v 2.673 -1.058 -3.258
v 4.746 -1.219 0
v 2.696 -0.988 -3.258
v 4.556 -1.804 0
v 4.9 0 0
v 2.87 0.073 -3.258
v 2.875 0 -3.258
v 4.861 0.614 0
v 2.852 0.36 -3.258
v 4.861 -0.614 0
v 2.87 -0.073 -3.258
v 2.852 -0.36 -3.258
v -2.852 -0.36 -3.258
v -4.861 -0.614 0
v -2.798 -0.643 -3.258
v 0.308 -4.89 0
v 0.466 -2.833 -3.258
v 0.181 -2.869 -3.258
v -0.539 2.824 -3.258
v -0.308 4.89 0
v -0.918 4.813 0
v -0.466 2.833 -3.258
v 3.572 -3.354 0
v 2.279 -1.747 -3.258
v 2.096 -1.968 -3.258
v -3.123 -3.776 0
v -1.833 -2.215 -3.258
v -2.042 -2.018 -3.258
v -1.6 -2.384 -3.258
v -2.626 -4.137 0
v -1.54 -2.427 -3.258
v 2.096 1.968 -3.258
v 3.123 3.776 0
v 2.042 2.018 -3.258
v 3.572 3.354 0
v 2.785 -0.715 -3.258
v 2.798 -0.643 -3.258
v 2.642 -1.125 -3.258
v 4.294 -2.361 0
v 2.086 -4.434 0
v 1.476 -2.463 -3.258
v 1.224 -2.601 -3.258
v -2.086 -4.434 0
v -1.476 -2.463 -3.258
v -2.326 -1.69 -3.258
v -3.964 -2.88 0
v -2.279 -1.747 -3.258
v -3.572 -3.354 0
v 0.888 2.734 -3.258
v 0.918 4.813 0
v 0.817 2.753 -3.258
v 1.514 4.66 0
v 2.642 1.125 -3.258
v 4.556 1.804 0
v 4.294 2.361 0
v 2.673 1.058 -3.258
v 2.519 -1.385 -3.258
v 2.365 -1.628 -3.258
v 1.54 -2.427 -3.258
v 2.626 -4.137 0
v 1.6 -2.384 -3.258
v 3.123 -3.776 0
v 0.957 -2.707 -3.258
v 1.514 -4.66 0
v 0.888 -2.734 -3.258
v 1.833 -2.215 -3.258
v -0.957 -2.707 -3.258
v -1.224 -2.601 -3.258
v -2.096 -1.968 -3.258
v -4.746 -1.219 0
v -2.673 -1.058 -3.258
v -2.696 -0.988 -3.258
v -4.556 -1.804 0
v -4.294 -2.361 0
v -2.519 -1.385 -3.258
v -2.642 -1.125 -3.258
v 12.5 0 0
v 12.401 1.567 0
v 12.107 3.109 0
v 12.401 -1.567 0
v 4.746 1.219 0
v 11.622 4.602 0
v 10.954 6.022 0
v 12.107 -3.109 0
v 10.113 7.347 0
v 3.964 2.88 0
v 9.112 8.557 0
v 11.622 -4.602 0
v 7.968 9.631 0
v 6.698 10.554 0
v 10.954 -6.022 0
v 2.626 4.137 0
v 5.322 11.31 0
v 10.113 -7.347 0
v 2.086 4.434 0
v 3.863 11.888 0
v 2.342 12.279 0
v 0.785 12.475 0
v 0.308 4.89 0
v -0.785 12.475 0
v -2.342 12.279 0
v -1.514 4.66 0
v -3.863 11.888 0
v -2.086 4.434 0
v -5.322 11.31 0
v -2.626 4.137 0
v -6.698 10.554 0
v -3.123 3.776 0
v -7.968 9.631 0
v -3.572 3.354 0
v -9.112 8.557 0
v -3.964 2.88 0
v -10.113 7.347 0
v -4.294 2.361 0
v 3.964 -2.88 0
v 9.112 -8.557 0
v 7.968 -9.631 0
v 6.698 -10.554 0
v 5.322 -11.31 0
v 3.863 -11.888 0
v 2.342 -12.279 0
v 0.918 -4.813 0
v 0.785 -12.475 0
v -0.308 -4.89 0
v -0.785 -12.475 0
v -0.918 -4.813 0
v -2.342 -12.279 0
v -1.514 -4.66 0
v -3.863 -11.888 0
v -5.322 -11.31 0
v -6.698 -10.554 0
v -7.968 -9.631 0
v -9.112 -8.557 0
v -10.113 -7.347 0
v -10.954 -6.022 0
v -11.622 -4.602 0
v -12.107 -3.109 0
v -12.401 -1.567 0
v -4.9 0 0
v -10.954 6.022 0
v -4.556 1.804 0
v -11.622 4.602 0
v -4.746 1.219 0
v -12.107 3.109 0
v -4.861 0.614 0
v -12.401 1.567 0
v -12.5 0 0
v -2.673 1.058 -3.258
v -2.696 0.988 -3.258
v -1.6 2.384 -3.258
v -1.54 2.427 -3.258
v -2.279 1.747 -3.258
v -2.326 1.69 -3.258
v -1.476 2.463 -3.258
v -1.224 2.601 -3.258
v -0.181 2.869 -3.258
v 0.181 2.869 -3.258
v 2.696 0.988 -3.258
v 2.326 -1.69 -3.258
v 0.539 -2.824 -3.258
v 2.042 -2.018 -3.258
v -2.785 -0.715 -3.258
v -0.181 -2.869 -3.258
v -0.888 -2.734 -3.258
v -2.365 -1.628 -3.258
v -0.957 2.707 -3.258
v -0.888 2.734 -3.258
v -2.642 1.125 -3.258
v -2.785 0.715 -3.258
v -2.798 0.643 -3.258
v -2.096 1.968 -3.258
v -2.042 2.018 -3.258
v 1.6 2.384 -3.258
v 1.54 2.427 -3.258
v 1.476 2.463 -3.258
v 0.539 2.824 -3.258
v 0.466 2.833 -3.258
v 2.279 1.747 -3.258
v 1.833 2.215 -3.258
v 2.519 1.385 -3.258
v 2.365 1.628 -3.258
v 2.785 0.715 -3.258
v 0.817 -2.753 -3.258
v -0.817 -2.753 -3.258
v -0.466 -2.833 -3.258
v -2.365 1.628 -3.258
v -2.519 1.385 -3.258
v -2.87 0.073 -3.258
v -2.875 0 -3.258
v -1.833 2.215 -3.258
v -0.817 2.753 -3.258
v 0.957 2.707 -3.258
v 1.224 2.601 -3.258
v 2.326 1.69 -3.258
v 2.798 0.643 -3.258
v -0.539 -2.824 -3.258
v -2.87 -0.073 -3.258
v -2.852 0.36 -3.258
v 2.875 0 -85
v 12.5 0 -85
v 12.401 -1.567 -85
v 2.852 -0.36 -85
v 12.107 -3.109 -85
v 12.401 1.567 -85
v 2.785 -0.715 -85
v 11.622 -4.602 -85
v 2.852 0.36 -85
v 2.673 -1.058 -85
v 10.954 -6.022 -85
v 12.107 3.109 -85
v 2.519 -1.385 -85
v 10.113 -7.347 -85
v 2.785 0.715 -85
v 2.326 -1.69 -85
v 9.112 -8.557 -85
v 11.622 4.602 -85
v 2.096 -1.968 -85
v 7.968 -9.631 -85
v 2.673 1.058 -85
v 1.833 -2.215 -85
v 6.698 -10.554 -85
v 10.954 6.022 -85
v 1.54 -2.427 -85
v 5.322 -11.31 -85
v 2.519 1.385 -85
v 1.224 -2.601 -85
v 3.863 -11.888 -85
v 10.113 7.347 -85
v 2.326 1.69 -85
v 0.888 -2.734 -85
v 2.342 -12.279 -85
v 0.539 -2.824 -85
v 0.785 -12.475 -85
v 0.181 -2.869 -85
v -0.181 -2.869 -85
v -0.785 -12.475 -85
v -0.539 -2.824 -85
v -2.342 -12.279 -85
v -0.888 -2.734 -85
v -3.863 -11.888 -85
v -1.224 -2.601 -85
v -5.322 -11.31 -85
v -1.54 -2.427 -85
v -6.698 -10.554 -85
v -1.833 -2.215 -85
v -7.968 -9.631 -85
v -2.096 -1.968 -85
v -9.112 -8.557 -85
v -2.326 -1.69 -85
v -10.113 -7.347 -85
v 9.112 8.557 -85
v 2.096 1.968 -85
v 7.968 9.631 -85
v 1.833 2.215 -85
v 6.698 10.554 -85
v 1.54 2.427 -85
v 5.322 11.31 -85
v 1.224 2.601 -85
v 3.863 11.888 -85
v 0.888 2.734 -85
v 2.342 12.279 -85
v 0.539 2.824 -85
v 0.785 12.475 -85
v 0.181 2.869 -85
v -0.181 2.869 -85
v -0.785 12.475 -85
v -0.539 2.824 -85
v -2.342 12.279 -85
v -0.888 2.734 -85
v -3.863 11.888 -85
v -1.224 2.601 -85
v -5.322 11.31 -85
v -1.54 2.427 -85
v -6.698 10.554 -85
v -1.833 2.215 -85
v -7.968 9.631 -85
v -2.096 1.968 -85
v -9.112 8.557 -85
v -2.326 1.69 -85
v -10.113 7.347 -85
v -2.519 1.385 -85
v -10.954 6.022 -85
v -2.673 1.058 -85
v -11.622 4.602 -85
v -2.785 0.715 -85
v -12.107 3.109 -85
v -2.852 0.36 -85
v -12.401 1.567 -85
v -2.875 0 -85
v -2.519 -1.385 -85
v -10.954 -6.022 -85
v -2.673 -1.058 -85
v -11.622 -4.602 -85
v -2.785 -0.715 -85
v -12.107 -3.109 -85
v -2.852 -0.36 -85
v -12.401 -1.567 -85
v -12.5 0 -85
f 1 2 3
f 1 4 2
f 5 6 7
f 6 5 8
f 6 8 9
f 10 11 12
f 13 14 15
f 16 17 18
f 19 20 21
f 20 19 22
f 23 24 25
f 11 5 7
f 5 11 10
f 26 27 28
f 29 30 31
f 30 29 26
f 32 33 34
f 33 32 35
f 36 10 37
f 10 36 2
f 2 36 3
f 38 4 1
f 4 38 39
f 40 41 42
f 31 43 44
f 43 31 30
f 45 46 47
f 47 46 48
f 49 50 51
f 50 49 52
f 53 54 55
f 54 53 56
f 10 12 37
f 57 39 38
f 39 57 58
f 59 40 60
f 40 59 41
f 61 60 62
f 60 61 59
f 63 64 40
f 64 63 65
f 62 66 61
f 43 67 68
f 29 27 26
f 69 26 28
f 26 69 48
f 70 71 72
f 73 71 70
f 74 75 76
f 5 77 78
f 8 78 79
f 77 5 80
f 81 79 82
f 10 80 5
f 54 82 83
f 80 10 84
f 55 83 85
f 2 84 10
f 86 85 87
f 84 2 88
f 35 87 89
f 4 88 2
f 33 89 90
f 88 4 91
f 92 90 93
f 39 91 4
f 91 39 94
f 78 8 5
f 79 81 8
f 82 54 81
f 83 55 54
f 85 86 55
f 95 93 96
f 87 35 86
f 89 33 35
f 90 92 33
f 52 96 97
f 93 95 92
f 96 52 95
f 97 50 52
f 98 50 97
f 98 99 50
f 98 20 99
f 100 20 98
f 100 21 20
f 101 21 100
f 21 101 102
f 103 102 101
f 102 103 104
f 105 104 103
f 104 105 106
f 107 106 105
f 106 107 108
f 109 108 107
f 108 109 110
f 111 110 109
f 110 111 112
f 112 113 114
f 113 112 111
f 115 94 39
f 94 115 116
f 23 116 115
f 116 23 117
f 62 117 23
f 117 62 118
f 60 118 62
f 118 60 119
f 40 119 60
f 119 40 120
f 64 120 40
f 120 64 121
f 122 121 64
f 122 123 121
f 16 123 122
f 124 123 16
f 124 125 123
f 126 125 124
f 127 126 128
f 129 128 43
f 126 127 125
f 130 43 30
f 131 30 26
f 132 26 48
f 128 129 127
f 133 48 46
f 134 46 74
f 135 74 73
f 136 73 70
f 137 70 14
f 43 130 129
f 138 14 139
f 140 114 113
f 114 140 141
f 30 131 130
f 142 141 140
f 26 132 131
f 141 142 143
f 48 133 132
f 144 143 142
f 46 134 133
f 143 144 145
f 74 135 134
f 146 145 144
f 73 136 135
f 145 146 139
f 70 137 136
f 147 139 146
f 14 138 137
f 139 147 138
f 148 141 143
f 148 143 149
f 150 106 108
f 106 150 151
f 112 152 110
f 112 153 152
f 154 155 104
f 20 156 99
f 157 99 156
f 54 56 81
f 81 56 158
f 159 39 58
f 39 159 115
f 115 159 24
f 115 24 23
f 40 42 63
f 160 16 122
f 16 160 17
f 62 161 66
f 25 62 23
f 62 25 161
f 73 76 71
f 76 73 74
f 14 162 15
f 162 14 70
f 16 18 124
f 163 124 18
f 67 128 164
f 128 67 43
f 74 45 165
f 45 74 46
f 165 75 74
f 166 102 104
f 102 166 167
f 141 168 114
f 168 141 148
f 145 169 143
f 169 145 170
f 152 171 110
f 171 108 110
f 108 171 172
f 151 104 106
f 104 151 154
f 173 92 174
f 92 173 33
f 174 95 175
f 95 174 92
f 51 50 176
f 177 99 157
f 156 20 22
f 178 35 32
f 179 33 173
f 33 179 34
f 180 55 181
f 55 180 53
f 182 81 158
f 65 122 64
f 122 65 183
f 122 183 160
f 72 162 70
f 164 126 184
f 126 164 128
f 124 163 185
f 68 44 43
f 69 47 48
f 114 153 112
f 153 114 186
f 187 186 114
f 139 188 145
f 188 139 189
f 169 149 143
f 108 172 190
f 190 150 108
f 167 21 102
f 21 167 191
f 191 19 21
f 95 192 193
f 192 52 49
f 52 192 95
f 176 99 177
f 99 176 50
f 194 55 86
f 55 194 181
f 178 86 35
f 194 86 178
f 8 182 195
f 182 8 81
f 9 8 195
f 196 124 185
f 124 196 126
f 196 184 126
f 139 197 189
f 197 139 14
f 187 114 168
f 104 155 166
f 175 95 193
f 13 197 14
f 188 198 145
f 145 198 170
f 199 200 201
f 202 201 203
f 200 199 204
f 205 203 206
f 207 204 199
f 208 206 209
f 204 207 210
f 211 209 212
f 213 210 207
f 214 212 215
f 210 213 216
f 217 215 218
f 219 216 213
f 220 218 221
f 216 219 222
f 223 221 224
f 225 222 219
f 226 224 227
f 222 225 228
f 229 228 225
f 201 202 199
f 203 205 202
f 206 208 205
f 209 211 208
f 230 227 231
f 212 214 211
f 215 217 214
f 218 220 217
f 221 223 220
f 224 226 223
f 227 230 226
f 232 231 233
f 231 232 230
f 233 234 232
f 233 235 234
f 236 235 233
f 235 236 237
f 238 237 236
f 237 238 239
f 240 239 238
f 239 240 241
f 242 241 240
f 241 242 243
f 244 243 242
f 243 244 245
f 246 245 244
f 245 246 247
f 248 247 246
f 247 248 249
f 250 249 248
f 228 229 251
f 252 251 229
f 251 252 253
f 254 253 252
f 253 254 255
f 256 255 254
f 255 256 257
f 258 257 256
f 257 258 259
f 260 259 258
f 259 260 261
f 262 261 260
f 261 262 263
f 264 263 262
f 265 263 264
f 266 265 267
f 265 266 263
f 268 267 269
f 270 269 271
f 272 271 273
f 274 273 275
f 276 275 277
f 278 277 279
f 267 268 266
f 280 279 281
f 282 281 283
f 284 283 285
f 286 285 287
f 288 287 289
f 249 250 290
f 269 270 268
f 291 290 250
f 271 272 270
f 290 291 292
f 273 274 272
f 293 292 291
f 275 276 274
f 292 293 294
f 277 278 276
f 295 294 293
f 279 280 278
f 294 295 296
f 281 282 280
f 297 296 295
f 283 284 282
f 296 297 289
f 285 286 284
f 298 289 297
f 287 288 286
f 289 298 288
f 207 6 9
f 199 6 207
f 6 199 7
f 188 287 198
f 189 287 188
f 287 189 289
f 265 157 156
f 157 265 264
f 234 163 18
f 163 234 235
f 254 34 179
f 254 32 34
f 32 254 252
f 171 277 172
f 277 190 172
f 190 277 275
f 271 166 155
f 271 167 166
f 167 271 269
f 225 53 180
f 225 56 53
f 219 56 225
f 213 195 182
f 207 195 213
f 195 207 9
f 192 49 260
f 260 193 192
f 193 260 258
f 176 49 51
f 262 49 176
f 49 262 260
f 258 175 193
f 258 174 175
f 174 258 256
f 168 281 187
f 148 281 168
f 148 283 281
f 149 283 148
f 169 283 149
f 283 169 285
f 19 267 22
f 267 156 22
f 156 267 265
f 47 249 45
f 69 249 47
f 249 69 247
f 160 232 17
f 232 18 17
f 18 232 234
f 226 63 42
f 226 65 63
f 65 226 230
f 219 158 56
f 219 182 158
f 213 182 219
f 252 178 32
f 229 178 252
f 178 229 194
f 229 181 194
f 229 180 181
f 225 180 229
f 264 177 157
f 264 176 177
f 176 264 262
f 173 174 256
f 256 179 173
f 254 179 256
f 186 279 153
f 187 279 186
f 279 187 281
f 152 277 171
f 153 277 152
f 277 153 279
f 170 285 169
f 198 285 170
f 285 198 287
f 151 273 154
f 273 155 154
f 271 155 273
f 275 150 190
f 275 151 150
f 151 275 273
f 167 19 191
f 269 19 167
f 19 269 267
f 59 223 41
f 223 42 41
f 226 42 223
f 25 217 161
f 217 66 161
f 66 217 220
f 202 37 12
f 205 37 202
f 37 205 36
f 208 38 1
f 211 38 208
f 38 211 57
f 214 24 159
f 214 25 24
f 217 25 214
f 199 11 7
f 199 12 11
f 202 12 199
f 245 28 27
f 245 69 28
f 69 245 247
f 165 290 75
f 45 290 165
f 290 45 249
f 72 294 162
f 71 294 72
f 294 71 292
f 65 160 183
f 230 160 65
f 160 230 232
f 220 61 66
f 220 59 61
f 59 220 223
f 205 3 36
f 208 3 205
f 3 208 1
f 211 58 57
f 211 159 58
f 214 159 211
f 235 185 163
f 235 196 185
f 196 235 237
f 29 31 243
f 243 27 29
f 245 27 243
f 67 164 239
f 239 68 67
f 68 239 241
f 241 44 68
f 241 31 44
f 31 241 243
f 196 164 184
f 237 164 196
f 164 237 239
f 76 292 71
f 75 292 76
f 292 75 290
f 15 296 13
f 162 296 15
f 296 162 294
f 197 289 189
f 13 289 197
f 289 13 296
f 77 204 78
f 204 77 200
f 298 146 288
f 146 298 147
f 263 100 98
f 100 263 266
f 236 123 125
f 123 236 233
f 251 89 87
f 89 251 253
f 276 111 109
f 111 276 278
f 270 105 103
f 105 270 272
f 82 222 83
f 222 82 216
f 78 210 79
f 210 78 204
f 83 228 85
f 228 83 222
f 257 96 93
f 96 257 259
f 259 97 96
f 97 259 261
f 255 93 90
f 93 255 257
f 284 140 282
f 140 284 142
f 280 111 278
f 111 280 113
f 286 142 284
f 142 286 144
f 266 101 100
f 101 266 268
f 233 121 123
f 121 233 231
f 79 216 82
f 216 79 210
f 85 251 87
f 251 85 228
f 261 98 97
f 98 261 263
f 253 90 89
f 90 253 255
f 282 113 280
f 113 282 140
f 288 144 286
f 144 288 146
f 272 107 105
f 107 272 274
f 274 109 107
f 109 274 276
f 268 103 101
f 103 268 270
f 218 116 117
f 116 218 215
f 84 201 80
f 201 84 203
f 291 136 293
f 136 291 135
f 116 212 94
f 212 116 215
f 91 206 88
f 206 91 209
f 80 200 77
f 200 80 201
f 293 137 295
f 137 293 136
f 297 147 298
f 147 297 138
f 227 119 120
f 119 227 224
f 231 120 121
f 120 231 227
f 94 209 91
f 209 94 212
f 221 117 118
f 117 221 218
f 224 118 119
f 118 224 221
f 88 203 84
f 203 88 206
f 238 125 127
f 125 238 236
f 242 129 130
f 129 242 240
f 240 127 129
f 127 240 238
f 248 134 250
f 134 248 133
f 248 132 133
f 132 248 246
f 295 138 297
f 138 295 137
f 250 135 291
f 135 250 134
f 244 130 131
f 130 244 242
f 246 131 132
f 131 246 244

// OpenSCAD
$fn = 50;


difference() {
	union() {
		translate(v = [0, 0, -85.0000000000]) {
			cylinder(h = 85, r = 12.5000000000);
		}
	}
	union() {
		translate(v = [0, 0, 0]) {
			rotate(a = [0, 0, 0]) {
				difference() {
					union() {
						translate(v = [0, 0, -3.7000000000]) {
							cylinder(h = 3.7000000000, r = 12.5000000000, r1 = 2.6000000000, r2 = 4.9000000000);
						}
						translate(v = [0, 0, -85.0000000000]) {
							cylinder(h = 85, r = 2.6000000000);
						}
						translate(v = [0, 0, -85.0000000000]) {
							cylinder(h = 85, r = 2.8750000000);
						}
						translate(v = [0, 0, -85.0000000000]) {
							cylinder(h = 85, r = 2.6000000000);
						}
					}
					union();
				}
			}
		}
	}
}
